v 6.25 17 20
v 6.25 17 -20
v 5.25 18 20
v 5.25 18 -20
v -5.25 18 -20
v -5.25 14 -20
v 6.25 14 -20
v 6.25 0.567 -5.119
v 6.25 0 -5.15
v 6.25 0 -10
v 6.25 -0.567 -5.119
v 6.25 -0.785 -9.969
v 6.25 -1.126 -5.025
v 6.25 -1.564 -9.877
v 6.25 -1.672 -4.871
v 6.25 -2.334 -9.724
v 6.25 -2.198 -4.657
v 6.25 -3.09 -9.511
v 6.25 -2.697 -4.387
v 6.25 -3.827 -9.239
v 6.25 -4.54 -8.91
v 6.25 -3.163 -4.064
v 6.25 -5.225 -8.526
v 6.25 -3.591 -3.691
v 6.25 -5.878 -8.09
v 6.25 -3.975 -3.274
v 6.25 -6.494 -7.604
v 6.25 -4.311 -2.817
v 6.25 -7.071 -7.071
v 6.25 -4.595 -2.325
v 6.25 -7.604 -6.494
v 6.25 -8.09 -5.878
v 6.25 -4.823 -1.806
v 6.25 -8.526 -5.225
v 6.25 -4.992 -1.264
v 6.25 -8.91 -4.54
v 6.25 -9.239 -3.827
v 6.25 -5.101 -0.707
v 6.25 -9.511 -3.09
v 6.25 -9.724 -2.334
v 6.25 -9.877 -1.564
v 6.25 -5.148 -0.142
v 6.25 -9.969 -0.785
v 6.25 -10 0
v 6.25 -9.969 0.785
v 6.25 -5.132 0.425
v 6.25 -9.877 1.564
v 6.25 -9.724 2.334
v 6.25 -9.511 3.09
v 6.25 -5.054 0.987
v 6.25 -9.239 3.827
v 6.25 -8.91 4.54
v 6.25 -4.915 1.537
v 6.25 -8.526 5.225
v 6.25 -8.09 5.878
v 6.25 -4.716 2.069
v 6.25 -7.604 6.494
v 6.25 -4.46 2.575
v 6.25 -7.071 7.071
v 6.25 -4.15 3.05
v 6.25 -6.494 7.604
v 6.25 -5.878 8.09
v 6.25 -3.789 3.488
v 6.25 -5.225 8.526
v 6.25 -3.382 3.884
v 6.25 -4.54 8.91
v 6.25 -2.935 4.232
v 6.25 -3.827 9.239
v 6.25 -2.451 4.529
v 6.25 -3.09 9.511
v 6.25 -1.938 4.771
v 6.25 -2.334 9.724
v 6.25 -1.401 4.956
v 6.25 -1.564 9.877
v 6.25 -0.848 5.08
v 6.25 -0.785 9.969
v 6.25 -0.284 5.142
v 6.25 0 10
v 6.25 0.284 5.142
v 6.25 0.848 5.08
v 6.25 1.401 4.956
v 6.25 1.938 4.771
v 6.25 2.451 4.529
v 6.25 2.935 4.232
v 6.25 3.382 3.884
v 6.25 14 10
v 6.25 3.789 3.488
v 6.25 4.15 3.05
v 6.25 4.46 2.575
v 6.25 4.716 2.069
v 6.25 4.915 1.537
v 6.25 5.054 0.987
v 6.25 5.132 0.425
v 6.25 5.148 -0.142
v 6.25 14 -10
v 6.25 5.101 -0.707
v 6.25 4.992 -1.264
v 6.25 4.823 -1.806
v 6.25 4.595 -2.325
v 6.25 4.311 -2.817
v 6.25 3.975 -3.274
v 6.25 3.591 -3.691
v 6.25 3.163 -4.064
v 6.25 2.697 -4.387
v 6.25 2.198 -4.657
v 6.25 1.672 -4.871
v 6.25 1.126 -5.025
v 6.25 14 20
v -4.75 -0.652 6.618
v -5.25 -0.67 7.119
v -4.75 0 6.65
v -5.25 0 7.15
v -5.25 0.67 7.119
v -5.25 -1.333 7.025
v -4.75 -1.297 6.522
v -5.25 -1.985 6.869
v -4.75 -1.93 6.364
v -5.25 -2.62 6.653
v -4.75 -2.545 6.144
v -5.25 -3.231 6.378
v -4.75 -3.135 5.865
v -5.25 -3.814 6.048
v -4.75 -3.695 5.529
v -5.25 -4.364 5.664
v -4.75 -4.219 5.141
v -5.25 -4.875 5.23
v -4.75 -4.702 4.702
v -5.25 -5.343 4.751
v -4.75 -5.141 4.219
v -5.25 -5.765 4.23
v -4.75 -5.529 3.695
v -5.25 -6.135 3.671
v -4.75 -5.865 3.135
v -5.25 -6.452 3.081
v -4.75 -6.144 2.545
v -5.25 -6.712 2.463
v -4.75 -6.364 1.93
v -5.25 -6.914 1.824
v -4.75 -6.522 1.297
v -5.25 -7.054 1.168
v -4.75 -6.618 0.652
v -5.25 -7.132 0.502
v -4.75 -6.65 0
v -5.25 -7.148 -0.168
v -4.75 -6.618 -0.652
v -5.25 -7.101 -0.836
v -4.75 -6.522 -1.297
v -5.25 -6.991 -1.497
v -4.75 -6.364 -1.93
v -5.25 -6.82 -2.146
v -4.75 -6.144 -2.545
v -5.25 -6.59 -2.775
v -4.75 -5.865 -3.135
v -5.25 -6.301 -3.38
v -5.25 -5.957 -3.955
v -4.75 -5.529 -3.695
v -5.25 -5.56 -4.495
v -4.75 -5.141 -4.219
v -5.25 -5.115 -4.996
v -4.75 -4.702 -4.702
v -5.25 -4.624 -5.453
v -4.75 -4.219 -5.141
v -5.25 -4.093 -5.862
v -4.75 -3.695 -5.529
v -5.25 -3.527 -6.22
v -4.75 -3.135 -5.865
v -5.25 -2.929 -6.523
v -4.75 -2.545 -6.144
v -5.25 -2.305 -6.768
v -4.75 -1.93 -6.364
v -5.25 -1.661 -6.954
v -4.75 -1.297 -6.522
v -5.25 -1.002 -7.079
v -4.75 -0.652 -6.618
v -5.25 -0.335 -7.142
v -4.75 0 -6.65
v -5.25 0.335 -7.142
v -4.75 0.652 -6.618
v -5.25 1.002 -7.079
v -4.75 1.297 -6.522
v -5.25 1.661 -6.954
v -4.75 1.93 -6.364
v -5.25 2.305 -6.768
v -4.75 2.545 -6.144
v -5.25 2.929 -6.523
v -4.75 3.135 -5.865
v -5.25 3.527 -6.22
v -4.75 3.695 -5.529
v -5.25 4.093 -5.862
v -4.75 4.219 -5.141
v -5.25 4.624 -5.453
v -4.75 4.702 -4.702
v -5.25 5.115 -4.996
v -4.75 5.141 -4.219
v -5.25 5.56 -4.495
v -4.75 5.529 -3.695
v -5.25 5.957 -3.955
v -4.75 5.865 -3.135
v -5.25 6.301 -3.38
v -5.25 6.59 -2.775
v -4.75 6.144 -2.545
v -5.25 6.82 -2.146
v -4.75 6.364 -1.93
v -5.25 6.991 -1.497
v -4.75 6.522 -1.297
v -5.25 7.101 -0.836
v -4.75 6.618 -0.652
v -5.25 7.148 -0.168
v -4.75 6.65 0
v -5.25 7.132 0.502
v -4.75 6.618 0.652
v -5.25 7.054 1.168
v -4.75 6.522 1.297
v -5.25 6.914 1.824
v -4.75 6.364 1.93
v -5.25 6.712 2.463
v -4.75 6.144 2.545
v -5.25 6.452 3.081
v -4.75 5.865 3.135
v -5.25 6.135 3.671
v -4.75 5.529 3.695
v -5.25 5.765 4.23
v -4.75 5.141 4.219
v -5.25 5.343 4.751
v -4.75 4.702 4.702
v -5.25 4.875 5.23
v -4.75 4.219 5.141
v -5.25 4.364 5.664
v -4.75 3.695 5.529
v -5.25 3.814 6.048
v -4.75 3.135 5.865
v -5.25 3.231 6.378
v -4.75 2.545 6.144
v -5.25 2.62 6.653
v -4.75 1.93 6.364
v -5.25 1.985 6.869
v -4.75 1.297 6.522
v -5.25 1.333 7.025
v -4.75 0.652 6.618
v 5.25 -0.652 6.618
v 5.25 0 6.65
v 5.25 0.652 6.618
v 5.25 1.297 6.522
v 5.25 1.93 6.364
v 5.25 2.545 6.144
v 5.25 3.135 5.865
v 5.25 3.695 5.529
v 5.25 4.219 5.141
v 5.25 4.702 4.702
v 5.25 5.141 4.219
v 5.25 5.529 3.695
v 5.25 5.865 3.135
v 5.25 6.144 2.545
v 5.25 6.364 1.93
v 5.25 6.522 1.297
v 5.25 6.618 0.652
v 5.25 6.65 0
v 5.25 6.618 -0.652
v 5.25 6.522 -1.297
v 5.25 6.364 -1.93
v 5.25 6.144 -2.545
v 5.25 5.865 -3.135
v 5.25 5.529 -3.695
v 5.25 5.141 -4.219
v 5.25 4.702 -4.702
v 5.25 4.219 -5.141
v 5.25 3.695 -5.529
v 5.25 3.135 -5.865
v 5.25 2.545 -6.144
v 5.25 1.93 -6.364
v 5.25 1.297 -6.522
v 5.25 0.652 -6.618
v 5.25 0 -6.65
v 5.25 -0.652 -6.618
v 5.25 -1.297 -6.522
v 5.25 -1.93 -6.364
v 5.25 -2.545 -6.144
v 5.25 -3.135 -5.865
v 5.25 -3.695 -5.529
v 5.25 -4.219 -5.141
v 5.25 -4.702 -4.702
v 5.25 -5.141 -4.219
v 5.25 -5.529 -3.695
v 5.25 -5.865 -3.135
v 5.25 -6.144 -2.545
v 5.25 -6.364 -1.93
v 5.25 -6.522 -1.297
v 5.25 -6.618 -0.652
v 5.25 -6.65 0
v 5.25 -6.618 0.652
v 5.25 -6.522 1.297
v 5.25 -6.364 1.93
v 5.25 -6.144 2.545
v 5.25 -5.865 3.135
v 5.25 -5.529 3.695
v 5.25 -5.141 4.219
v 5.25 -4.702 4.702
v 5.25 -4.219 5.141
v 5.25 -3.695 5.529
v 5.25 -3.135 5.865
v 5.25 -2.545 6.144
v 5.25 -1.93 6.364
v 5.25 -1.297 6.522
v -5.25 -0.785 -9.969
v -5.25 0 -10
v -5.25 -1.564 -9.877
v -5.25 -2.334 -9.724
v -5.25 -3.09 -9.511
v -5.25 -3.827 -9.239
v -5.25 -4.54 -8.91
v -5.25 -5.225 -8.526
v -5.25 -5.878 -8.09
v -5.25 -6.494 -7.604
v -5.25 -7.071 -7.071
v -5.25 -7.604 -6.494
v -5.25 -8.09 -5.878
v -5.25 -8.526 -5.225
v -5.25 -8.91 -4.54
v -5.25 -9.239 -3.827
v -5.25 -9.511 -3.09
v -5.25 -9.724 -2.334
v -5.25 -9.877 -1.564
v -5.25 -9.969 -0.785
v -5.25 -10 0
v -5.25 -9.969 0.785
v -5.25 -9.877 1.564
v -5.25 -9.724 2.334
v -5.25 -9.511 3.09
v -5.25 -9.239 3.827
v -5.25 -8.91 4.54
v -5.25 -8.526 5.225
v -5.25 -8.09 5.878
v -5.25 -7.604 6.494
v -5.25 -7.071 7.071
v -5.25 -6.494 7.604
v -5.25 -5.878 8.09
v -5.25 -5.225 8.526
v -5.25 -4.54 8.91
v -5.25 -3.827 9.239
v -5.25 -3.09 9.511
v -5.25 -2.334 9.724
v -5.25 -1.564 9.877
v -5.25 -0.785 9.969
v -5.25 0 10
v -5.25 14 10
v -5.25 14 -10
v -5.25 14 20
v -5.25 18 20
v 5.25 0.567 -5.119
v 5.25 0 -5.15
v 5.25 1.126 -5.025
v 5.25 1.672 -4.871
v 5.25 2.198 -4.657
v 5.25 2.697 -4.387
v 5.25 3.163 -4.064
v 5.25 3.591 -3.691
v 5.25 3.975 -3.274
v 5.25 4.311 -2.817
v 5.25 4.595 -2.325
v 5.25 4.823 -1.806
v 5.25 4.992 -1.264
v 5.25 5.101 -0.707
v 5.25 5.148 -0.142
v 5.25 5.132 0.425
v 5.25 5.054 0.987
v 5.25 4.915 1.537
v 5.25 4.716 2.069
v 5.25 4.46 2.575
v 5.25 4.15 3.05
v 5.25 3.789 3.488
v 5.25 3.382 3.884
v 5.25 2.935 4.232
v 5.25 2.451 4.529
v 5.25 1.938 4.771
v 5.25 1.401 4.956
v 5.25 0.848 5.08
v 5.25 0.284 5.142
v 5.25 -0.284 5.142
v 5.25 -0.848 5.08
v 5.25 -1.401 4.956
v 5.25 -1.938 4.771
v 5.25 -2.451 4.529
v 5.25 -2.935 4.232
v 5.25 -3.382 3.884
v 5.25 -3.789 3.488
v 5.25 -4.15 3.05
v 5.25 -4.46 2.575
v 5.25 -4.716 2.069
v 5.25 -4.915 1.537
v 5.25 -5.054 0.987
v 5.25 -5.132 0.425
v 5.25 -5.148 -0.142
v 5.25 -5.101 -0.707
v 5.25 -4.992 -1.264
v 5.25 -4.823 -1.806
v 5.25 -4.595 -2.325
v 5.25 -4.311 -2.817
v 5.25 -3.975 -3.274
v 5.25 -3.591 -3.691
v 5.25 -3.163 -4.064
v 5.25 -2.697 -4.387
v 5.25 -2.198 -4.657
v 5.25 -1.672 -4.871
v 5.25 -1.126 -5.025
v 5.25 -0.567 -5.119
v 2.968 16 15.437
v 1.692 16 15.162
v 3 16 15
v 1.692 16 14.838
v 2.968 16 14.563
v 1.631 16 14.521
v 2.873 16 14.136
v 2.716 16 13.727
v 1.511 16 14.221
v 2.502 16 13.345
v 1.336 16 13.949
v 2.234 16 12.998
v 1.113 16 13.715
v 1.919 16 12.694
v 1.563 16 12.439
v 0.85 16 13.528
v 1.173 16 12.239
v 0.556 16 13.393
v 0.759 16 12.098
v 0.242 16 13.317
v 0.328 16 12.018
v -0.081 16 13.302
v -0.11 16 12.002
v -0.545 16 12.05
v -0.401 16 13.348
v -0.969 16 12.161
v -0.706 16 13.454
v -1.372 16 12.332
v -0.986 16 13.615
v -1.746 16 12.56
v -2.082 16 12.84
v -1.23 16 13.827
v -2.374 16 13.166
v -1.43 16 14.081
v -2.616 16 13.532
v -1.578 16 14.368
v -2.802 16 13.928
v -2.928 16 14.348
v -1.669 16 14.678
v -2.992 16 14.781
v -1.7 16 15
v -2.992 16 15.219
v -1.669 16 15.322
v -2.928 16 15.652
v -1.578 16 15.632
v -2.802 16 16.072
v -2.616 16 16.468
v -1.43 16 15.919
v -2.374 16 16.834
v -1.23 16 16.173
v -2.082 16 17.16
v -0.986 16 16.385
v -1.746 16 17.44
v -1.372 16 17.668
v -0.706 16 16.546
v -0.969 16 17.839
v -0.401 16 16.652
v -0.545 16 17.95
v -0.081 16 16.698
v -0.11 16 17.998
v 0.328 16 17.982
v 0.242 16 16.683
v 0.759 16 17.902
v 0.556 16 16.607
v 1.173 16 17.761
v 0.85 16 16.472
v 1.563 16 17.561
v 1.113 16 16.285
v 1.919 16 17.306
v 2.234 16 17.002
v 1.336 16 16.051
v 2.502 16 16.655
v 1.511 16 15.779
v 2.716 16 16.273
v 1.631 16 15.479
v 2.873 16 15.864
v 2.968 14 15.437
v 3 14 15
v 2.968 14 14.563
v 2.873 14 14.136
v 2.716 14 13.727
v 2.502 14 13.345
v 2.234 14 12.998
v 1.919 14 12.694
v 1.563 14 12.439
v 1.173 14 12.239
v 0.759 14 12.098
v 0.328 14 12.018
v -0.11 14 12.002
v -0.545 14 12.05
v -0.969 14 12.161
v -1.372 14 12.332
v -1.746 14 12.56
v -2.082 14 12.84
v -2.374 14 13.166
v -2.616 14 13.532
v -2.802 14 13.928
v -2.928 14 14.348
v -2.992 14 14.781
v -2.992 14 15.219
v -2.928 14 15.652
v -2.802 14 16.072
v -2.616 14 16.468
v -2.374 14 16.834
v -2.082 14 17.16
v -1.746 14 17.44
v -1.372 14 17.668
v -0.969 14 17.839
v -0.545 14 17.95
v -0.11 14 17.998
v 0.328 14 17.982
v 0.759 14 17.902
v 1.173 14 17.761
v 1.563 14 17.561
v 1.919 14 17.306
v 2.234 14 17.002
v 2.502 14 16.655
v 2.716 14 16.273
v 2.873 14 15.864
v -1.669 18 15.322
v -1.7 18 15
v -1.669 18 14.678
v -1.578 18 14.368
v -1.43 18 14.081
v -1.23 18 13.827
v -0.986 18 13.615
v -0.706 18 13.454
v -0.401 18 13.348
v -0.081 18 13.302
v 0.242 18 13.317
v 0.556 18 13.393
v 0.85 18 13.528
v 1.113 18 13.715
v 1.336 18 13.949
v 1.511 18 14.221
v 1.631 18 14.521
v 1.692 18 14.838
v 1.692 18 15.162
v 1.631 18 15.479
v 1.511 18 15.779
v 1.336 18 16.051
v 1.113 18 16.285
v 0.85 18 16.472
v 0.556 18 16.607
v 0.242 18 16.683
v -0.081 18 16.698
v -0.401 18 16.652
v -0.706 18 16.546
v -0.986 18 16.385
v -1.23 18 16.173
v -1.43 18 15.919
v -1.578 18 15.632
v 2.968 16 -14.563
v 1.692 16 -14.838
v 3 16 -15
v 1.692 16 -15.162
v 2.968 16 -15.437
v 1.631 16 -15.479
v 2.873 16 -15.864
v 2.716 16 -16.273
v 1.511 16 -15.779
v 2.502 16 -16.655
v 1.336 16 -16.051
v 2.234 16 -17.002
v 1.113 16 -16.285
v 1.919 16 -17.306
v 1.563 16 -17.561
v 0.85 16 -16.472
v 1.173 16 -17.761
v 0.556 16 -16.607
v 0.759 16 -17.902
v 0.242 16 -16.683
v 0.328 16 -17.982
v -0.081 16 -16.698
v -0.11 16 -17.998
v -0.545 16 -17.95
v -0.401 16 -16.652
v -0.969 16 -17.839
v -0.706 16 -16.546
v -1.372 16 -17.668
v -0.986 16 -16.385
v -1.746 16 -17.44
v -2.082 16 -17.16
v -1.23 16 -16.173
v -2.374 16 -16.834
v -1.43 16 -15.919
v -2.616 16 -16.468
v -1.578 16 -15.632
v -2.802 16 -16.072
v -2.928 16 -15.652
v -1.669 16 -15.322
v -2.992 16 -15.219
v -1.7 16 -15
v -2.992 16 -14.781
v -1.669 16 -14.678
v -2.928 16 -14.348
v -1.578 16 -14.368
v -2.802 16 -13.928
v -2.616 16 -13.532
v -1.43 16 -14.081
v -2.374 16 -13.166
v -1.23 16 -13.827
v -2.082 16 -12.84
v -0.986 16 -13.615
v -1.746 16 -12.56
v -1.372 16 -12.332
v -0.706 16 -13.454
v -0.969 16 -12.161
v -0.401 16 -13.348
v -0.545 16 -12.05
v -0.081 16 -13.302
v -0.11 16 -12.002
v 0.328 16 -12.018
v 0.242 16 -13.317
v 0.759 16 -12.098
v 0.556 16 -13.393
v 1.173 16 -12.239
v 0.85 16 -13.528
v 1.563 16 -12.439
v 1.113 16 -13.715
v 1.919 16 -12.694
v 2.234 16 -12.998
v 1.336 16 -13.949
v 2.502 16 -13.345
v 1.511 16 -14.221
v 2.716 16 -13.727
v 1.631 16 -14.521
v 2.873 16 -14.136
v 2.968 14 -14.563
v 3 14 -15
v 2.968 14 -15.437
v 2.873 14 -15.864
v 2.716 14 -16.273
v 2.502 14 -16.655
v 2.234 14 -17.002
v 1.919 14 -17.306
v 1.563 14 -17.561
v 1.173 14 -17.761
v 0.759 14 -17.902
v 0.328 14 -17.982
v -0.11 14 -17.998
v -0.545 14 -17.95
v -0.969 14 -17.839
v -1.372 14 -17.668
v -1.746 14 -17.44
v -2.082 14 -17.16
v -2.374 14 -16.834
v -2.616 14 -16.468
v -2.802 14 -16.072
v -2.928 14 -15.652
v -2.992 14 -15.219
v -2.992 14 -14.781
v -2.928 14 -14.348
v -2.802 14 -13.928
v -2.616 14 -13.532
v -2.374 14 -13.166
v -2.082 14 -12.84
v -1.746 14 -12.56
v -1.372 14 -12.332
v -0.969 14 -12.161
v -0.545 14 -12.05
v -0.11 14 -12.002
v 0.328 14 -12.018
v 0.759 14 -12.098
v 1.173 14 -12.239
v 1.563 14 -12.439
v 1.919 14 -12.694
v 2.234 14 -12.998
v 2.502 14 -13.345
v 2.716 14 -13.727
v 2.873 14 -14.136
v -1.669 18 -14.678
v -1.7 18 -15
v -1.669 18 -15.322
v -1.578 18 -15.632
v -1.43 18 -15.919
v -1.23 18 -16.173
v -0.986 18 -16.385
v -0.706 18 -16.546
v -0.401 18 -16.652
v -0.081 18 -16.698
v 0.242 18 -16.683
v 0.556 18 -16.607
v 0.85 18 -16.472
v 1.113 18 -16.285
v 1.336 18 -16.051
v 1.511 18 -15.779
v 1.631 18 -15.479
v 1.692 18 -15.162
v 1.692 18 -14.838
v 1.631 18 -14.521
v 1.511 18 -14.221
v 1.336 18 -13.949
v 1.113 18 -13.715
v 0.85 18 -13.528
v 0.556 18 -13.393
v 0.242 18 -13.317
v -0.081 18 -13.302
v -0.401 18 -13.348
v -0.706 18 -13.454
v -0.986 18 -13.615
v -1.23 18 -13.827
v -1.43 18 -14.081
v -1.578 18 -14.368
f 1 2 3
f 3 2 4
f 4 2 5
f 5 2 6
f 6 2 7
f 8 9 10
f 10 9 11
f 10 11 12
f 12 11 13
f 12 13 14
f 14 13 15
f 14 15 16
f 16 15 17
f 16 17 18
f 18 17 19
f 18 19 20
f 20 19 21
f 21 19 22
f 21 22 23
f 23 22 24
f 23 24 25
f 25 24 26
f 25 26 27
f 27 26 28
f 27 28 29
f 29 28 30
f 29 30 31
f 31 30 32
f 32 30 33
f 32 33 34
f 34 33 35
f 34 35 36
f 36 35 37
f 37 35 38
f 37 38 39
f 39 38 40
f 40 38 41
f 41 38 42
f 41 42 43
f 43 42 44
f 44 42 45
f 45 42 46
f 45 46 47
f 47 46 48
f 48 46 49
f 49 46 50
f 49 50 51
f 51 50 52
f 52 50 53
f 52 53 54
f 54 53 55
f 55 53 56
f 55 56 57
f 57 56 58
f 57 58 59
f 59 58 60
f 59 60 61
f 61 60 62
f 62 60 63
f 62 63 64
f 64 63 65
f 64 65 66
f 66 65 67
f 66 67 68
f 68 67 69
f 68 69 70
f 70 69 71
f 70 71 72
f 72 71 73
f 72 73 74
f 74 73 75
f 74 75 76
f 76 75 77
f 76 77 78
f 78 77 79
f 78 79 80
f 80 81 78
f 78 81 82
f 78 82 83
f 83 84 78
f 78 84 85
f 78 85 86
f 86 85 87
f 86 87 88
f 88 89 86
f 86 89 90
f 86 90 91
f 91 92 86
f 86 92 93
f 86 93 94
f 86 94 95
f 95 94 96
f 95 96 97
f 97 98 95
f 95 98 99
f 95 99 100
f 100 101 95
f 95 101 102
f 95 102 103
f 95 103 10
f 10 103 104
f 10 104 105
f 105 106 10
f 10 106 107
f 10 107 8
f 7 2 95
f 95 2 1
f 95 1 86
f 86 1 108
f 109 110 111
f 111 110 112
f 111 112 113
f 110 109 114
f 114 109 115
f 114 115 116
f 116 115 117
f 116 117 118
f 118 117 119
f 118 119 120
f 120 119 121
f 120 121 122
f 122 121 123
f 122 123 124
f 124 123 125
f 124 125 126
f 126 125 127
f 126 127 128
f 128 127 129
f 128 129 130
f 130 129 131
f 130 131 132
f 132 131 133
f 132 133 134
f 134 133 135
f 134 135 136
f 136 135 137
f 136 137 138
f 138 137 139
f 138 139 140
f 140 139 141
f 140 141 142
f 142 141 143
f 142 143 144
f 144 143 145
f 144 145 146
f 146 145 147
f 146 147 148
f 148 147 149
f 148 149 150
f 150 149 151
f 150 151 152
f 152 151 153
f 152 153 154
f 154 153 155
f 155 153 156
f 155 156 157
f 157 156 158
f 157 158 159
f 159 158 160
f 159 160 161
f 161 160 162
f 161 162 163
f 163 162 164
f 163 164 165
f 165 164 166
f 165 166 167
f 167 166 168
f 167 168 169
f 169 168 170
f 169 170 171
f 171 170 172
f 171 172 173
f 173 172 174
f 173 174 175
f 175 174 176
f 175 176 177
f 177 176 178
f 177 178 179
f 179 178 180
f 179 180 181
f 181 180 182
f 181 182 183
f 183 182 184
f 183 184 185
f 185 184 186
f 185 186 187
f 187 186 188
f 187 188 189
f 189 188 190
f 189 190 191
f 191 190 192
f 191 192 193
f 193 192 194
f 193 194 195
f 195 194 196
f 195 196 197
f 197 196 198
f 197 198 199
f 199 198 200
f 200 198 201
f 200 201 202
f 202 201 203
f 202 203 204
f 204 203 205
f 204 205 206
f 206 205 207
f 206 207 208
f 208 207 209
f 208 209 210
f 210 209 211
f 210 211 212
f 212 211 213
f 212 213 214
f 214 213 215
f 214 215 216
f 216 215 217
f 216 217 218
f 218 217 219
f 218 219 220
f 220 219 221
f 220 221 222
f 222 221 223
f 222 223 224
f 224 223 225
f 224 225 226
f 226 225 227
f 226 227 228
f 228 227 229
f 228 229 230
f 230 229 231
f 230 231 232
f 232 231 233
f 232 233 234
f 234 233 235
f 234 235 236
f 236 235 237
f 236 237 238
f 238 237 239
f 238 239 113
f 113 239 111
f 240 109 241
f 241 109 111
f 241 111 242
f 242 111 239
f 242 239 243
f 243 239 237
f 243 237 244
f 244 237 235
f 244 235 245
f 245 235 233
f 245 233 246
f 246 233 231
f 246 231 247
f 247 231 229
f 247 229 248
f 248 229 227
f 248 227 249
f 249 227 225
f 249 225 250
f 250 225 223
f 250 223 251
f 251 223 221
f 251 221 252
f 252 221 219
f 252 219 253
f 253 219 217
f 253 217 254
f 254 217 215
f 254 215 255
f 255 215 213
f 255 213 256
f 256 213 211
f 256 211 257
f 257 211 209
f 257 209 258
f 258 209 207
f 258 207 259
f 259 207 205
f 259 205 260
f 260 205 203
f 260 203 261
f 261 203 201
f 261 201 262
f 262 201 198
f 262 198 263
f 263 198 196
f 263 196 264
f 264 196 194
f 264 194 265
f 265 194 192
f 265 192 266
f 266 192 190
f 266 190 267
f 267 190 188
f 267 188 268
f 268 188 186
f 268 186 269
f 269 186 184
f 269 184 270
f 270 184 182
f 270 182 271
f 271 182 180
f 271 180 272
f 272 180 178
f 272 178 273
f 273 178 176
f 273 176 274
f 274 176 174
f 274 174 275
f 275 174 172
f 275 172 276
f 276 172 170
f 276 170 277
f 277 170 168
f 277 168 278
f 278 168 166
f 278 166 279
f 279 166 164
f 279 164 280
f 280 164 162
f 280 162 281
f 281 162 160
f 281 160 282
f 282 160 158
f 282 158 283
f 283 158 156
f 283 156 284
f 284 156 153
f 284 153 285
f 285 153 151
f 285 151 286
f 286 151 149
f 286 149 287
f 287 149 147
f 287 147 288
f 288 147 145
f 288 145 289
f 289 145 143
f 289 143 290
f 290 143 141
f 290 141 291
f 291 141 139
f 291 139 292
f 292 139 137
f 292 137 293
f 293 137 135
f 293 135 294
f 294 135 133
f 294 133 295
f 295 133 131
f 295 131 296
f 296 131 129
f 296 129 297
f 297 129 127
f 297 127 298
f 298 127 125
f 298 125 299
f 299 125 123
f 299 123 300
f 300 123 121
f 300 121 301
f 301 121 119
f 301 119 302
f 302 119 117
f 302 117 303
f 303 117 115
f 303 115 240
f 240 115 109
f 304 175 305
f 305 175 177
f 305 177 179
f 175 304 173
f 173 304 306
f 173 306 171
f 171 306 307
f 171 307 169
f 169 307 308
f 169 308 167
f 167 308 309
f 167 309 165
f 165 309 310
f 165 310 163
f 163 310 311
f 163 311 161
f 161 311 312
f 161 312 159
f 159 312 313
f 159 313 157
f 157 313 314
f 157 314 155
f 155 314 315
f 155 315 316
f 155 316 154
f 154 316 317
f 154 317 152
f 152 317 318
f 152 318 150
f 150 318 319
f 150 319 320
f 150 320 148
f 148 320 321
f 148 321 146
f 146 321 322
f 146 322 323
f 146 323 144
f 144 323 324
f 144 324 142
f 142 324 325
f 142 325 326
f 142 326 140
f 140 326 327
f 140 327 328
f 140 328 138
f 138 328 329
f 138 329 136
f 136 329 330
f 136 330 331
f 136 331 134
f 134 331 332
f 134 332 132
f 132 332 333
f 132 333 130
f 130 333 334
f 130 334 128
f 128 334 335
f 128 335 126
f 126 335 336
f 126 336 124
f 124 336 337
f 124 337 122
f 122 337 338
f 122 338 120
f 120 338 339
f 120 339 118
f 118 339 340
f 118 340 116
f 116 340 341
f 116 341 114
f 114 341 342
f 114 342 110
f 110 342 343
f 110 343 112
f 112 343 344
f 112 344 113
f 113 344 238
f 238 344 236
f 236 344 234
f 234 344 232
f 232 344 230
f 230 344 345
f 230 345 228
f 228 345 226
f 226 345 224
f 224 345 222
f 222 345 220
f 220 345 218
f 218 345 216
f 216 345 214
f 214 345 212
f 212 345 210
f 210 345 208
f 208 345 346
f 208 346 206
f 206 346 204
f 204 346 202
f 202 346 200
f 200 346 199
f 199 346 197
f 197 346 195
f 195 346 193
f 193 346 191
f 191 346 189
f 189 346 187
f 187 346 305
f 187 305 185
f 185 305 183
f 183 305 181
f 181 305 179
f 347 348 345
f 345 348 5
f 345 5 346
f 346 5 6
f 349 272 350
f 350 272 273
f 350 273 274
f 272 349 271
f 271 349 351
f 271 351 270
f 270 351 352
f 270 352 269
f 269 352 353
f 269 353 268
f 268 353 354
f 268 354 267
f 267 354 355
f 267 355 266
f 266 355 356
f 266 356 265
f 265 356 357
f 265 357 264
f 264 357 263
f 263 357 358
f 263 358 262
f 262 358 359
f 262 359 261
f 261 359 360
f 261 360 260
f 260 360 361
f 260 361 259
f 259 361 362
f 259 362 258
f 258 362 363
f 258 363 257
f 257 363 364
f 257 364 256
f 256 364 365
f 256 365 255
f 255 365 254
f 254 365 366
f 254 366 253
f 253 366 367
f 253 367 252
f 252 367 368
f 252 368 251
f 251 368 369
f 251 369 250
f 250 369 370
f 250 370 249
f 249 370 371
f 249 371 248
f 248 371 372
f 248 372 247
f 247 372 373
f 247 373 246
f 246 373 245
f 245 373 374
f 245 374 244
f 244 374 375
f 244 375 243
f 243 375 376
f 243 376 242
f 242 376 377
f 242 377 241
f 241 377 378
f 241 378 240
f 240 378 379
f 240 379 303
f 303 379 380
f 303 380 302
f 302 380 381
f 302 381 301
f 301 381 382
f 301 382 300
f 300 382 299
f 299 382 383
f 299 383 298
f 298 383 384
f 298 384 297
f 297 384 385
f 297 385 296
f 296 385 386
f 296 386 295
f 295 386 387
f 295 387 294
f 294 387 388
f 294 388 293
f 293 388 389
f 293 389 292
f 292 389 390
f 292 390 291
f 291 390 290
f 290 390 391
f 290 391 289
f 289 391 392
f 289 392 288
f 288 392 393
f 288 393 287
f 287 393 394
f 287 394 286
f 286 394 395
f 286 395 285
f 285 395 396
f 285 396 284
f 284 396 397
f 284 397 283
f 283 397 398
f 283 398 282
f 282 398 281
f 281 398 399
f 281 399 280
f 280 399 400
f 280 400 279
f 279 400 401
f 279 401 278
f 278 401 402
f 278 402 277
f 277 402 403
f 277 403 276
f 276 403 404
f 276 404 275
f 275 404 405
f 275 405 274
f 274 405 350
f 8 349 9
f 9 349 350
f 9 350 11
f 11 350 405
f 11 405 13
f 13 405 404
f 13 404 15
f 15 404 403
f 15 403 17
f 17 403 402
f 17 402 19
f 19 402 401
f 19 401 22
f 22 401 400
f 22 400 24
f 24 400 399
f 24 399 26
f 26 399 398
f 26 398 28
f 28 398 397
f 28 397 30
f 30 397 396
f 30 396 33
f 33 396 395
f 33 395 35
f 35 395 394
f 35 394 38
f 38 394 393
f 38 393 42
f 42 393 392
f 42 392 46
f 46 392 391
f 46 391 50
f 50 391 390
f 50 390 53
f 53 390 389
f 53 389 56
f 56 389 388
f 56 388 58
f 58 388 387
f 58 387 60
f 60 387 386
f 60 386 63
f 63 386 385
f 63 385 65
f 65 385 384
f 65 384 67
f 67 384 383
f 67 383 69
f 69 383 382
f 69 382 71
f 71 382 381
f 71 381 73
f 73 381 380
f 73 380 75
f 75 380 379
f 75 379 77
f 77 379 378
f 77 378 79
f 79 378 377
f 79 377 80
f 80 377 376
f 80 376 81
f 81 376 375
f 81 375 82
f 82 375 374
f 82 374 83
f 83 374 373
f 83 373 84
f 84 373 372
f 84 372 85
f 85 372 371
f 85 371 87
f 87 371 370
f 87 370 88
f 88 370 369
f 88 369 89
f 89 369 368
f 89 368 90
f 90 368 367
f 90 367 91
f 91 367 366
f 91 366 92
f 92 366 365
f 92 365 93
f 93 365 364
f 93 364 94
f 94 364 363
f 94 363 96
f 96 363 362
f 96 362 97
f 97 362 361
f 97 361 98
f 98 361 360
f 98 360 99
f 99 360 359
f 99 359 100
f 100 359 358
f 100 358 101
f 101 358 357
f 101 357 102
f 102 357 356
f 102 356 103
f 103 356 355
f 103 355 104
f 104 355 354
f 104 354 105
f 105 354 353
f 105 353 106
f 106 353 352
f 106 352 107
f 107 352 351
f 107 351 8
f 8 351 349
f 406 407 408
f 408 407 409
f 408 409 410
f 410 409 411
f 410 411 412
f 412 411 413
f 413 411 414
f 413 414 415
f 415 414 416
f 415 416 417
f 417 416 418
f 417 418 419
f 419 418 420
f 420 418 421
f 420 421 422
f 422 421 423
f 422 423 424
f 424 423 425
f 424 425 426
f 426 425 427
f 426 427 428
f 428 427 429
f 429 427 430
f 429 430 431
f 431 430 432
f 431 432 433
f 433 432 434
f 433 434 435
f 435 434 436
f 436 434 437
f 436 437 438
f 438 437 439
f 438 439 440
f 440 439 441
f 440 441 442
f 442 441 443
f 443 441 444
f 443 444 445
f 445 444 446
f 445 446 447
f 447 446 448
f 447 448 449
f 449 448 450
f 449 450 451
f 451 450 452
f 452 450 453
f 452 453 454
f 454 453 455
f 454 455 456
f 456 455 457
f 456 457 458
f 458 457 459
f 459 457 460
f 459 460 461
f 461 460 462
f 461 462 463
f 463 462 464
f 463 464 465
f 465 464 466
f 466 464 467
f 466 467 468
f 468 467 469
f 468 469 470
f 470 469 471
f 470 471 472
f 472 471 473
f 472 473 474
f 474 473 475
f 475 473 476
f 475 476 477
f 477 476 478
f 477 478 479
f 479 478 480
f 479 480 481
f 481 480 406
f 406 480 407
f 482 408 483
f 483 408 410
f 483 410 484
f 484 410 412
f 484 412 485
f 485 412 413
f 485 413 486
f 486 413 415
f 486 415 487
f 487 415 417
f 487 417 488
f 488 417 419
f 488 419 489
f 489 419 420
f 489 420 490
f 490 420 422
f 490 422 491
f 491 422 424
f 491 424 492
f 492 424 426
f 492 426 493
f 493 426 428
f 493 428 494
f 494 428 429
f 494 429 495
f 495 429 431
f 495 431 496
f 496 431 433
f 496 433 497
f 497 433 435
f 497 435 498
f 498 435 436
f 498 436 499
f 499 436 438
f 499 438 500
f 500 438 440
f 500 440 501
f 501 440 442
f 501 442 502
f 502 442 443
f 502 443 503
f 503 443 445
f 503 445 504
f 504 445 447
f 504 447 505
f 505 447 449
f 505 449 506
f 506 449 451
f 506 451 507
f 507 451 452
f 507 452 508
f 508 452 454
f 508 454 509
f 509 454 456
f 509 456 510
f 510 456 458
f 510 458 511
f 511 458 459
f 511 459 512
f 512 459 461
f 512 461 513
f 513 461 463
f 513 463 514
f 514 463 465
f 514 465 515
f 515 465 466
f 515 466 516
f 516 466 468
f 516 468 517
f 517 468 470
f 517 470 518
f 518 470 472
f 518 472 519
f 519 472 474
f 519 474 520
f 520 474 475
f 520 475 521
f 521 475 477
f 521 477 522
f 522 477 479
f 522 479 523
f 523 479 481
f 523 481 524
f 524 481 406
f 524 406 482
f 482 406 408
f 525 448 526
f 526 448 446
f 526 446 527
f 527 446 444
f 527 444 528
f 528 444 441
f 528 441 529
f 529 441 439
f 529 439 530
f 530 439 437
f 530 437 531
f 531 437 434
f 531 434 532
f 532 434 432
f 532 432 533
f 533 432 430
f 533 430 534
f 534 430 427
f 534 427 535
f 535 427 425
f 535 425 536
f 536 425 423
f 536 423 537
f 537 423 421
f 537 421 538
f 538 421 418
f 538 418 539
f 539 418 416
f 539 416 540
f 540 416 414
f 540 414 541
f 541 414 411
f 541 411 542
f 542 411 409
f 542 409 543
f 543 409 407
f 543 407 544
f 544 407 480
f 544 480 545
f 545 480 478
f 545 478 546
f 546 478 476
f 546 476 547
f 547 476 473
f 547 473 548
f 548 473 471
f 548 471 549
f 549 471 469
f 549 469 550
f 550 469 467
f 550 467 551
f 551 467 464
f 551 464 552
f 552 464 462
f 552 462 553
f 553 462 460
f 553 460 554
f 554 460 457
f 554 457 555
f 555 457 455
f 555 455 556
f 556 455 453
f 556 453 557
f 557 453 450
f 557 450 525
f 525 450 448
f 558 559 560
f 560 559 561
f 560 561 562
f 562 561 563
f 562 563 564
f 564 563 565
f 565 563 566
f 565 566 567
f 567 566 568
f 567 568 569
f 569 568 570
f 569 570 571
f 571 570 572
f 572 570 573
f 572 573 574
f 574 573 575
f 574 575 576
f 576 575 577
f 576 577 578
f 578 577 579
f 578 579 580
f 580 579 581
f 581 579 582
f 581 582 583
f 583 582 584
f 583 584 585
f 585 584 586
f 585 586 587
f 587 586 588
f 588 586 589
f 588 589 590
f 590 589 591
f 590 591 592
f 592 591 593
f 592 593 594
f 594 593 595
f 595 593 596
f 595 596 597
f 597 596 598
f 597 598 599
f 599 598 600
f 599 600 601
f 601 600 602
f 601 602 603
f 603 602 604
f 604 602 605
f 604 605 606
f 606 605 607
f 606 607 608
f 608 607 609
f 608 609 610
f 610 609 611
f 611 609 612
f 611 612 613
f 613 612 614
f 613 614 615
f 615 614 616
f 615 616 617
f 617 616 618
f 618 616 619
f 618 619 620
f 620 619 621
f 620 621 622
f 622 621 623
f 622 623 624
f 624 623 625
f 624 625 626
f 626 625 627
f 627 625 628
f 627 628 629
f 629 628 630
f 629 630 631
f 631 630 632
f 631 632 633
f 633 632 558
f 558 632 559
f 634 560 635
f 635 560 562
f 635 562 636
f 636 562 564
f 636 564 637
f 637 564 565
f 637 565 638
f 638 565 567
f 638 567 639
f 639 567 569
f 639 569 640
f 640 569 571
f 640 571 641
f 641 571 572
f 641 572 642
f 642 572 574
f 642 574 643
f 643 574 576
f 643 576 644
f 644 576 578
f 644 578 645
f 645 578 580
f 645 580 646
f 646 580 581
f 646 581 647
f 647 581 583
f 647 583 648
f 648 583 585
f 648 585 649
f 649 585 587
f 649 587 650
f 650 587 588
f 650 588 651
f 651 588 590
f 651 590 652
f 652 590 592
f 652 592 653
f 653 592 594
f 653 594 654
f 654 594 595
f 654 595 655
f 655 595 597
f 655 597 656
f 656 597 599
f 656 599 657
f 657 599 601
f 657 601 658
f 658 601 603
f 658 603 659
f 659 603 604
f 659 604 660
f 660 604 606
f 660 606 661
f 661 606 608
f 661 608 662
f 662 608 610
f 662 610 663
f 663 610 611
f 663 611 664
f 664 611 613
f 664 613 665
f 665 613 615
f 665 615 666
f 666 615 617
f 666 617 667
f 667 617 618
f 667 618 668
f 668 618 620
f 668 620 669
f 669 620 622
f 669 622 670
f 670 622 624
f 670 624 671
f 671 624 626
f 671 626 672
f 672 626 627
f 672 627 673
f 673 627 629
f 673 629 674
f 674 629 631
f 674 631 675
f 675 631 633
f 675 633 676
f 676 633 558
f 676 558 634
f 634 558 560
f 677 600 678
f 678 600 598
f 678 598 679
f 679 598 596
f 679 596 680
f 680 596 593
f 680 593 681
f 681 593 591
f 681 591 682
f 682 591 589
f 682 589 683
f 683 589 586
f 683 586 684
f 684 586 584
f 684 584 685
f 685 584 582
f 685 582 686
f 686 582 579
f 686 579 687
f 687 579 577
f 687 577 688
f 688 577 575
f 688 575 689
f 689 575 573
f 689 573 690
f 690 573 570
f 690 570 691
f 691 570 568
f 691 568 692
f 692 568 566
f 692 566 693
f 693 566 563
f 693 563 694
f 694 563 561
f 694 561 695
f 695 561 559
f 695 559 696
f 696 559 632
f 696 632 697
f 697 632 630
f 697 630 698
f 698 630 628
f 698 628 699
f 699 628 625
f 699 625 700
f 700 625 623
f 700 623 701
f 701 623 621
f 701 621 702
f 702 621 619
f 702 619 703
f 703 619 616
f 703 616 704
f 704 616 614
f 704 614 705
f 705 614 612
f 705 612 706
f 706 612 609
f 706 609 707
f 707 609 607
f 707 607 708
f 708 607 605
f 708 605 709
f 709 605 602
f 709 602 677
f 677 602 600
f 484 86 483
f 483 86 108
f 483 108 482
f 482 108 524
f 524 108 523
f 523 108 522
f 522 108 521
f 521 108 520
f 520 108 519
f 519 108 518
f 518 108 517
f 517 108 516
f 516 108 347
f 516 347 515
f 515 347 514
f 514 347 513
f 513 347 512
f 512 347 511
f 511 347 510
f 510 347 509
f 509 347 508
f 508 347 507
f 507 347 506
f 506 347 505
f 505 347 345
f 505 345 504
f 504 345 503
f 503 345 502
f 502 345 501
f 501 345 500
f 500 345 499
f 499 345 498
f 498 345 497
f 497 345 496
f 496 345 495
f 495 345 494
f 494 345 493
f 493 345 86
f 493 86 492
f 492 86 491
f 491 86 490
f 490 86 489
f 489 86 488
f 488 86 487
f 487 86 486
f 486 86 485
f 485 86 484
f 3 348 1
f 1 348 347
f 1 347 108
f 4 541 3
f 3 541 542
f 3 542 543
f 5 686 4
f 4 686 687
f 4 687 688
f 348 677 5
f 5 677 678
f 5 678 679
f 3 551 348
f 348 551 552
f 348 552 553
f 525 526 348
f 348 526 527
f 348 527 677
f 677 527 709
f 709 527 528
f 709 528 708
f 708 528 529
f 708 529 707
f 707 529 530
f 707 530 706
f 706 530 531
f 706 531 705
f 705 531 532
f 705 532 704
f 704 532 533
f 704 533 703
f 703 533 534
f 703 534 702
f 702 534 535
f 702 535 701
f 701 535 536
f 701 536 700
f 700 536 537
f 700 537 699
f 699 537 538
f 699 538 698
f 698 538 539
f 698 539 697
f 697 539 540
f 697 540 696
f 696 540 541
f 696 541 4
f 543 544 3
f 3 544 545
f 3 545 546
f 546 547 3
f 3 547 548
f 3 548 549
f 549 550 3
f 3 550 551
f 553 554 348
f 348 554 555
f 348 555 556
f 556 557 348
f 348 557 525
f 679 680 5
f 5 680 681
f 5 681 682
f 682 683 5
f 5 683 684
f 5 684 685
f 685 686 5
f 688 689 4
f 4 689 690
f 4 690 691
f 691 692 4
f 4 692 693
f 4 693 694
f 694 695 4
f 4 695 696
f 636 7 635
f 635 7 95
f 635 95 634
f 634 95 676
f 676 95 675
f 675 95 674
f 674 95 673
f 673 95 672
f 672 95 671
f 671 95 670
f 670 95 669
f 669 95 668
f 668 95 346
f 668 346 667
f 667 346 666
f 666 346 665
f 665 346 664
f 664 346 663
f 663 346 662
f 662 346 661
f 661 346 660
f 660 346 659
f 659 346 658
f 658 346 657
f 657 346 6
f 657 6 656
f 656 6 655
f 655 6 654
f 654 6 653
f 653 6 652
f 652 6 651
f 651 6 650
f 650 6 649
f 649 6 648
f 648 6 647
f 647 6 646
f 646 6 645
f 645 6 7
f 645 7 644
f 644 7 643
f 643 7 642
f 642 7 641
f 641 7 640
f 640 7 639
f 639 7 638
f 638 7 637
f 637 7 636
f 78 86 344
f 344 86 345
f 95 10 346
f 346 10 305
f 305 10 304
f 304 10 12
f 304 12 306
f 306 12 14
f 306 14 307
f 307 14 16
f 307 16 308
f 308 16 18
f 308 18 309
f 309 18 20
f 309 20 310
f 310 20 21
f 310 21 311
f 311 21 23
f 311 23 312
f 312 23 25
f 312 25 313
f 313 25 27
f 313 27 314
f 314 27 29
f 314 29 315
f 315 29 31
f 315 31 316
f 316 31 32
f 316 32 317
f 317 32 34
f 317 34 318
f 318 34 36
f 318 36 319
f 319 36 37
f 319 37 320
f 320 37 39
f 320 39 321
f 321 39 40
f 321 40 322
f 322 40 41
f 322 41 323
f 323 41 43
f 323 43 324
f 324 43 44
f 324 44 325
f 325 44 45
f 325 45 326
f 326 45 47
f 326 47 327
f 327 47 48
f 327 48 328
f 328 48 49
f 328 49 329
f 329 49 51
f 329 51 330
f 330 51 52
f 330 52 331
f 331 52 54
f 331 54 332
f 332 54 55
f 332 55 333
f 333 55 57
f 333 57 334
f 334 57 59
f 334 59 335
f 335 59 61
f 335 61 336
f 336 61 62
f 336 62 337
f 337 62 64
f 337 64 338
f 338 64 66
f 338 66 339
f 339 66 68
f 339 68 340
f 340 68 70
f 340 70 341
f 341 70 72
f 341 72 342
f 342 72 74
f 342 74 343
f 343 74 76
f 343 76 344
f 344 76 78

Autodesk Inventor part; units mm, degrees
ref_plane "YZ Plane" through (0, 0, 0) normal (1, 0, 0) x (0, 1, 0)
ref_plane "XZ Plane" through (0, 0, 0) normal (0, 1, 0) x (-1, 0, 0)
ref_plane "XY Plane" through (0, 0, 0) normal (0, 0, 1) x (1, 0, 0)
sketch "Sketch1" plane through (0, 0, 0) normal (1, 0, 0) x (0, 1, 0)
  line L0 (0, 0) -> (14, 0) construction
  line L1 (0, -10) -> (14, -10)
  line L2 (14, 10) -> (0, 10)
  arc A0 (0, 10) -> (0, -10) centre (0, 0) ccw
  arc A1 (14, -10) -> (14, 10) centre (14, 0) ccw construction
  line L3 (14, 10) -> (14, -10)
  point P0 (7, 0)
  dimension "d2" = 20
  dimension "d1" = 14
extrude "Extrusion1" add sketch "Sketch1" along normal mid plane 10.5
sketch "Sketch2" plane through (-5.25, 14, 10) normal (0, 1, 0) x (1, 0, 0)
  line L0 (0, -10) -> (10.5, -10)
  line L1 (10.5, -10) -> (10.5, 30)
  line L2 (10.5, 30) -> (0, 30)
  line L3 (0, 30) -> (0, -10)
  line L4 (0, 0) -> (0, 20) construction
  line L5 (0, 20) -> (10.5, 20) construction
  line L6 (10.5, 20) -> (10.5, 0) construction
  line L7 (10.5, 0) -> (0, 0) construction
  line L8 (0, 0) -> (0, 20) construction
  line L9 (10.5, 20) -> (10.5, 0) construction
  line L10 (0, 10) -> (10.5, 10) construction
  point P0 (5.25, 10)
  dimension "d28" = 40
extrude "Extrusion2" add sketch "Sketch2" along normal blind 4
sketch "Sketch3" plane through (-5.25, 14, 10) normal (0, -1, 0) x (1, 0, 0)
  line L0 (10.5, -30) -> (0, -30) projected
  line L1 (0, -30) -> (0, -20) projected
  line L2 (0, -20) -> (0, 0) projected
  line L3 (0, 0) -> (0, 10) projected
  line L4 (0, 10) -> (10.5, 10) projected
  line L5 (10.5, 10) -> (10.5, 0) projected
  line L6 (10.5, 0) -> (10.5, -20) projected
  line L7 (10.5, -20) -> (10.5, -30) projected
  line L8 (10.5, -20) -> (0, -20) projected
  line L9 (0, 0) -> (10.5, 0) projected
  line L10 (0, 10) -> (10.5, 10) projected
  point P0 (5.25, -10)
  point P1 (5.25, 5)
  point P2 (5.25, -25)
  point P3 (5.25, 10)
  point P4 (5.25, 10)
  point P5 (5.25, 10)
  dimension "d30" = 5
  dimension "d31" = 5
hole "Hole1" at (0, 14, 15) at (0, 14, -15) direction (0, 1, 0) diameter 3.4 end through all counterbore diameter 6 counterbore depth 2
sketch "Sketch5" plane through (5.25, 0, 0) normal (1, 0, 0) x (0, 0, -1)
  arc A0 (-10, 0) -> (10, 0) centre (0, 0) ccw projected
hole "Hole3" at (5.25, 0, 0) direction (-1, 0, 0) diameter 13 end through all
thicken "Thicken1" operation add thickness 0.15 both sides no extend neighbours yes toward (0, 0.0804666, -0.9967573) faces at (1.75, 0.523, -6.4789)
sketch "Sketch6" plane through (5.25, 0, 0) normal (1, 0, 0) x (0, 0, -1)
  circle A0 centre (0, 0) radius 6.65 construction
  line L0 (20, 18) -> (20, 14) projected
  line L1 (20, 14) -> (10, 14) projected
  line L2 (10, 14) -> (10, 0) projected
  arc A1 (-10, 0) -> (10, 0) centre (0, 0) ccw projected
  line L3 (-10, 0) -> (-10, 14) projected
  line L4 (-10, 14) -> (-20, 14) projected
  line L5 (-20, 14) -> (-20, 18) projected
  line L6 (-20, 18) -> (20, 18) projected
  circle A2 centre (0, 0) radius 6.65 projected
  line L7 (20, 18) -> (20, 14) projected
  line L8 (20, 14) -> (10, 14) projected
  line L9 (10, 14) -> (10, 0) projected
  arc A3 (-10, 0) -> (10, 0) centre (0, 0) ccw projected
  line L10 (-10, 0) -> (-10, 14) projected
  line L11 (-10, 14) -> (-20, 14) projected
  line L12 (-20, 14) -> (-20, 18) projected
  line L13 (-20, 18) -> (20, 18) projected
  circle A4 centre (0, 0) radius 5.15
  dimension "d37" = 1.5
extrude "Extrusion3" add sketch "Sketch6" along normal blind 1 contours L0 L1 L2 A1 L3 L4 L5 L6 | A2
chamfer "Chamfer2" distance 0.5 angle 45 1 edges at (-5.25, 0, 6.65)
chamfer "Chamfer3" distance 1 angle 45 1 edges at (6.25, 18, 0)
equation "\"d31\" = d30"
equation "\"d21\" = diameter"
equation "\"diameter\" = 13"
properties part number "bearing holder"
